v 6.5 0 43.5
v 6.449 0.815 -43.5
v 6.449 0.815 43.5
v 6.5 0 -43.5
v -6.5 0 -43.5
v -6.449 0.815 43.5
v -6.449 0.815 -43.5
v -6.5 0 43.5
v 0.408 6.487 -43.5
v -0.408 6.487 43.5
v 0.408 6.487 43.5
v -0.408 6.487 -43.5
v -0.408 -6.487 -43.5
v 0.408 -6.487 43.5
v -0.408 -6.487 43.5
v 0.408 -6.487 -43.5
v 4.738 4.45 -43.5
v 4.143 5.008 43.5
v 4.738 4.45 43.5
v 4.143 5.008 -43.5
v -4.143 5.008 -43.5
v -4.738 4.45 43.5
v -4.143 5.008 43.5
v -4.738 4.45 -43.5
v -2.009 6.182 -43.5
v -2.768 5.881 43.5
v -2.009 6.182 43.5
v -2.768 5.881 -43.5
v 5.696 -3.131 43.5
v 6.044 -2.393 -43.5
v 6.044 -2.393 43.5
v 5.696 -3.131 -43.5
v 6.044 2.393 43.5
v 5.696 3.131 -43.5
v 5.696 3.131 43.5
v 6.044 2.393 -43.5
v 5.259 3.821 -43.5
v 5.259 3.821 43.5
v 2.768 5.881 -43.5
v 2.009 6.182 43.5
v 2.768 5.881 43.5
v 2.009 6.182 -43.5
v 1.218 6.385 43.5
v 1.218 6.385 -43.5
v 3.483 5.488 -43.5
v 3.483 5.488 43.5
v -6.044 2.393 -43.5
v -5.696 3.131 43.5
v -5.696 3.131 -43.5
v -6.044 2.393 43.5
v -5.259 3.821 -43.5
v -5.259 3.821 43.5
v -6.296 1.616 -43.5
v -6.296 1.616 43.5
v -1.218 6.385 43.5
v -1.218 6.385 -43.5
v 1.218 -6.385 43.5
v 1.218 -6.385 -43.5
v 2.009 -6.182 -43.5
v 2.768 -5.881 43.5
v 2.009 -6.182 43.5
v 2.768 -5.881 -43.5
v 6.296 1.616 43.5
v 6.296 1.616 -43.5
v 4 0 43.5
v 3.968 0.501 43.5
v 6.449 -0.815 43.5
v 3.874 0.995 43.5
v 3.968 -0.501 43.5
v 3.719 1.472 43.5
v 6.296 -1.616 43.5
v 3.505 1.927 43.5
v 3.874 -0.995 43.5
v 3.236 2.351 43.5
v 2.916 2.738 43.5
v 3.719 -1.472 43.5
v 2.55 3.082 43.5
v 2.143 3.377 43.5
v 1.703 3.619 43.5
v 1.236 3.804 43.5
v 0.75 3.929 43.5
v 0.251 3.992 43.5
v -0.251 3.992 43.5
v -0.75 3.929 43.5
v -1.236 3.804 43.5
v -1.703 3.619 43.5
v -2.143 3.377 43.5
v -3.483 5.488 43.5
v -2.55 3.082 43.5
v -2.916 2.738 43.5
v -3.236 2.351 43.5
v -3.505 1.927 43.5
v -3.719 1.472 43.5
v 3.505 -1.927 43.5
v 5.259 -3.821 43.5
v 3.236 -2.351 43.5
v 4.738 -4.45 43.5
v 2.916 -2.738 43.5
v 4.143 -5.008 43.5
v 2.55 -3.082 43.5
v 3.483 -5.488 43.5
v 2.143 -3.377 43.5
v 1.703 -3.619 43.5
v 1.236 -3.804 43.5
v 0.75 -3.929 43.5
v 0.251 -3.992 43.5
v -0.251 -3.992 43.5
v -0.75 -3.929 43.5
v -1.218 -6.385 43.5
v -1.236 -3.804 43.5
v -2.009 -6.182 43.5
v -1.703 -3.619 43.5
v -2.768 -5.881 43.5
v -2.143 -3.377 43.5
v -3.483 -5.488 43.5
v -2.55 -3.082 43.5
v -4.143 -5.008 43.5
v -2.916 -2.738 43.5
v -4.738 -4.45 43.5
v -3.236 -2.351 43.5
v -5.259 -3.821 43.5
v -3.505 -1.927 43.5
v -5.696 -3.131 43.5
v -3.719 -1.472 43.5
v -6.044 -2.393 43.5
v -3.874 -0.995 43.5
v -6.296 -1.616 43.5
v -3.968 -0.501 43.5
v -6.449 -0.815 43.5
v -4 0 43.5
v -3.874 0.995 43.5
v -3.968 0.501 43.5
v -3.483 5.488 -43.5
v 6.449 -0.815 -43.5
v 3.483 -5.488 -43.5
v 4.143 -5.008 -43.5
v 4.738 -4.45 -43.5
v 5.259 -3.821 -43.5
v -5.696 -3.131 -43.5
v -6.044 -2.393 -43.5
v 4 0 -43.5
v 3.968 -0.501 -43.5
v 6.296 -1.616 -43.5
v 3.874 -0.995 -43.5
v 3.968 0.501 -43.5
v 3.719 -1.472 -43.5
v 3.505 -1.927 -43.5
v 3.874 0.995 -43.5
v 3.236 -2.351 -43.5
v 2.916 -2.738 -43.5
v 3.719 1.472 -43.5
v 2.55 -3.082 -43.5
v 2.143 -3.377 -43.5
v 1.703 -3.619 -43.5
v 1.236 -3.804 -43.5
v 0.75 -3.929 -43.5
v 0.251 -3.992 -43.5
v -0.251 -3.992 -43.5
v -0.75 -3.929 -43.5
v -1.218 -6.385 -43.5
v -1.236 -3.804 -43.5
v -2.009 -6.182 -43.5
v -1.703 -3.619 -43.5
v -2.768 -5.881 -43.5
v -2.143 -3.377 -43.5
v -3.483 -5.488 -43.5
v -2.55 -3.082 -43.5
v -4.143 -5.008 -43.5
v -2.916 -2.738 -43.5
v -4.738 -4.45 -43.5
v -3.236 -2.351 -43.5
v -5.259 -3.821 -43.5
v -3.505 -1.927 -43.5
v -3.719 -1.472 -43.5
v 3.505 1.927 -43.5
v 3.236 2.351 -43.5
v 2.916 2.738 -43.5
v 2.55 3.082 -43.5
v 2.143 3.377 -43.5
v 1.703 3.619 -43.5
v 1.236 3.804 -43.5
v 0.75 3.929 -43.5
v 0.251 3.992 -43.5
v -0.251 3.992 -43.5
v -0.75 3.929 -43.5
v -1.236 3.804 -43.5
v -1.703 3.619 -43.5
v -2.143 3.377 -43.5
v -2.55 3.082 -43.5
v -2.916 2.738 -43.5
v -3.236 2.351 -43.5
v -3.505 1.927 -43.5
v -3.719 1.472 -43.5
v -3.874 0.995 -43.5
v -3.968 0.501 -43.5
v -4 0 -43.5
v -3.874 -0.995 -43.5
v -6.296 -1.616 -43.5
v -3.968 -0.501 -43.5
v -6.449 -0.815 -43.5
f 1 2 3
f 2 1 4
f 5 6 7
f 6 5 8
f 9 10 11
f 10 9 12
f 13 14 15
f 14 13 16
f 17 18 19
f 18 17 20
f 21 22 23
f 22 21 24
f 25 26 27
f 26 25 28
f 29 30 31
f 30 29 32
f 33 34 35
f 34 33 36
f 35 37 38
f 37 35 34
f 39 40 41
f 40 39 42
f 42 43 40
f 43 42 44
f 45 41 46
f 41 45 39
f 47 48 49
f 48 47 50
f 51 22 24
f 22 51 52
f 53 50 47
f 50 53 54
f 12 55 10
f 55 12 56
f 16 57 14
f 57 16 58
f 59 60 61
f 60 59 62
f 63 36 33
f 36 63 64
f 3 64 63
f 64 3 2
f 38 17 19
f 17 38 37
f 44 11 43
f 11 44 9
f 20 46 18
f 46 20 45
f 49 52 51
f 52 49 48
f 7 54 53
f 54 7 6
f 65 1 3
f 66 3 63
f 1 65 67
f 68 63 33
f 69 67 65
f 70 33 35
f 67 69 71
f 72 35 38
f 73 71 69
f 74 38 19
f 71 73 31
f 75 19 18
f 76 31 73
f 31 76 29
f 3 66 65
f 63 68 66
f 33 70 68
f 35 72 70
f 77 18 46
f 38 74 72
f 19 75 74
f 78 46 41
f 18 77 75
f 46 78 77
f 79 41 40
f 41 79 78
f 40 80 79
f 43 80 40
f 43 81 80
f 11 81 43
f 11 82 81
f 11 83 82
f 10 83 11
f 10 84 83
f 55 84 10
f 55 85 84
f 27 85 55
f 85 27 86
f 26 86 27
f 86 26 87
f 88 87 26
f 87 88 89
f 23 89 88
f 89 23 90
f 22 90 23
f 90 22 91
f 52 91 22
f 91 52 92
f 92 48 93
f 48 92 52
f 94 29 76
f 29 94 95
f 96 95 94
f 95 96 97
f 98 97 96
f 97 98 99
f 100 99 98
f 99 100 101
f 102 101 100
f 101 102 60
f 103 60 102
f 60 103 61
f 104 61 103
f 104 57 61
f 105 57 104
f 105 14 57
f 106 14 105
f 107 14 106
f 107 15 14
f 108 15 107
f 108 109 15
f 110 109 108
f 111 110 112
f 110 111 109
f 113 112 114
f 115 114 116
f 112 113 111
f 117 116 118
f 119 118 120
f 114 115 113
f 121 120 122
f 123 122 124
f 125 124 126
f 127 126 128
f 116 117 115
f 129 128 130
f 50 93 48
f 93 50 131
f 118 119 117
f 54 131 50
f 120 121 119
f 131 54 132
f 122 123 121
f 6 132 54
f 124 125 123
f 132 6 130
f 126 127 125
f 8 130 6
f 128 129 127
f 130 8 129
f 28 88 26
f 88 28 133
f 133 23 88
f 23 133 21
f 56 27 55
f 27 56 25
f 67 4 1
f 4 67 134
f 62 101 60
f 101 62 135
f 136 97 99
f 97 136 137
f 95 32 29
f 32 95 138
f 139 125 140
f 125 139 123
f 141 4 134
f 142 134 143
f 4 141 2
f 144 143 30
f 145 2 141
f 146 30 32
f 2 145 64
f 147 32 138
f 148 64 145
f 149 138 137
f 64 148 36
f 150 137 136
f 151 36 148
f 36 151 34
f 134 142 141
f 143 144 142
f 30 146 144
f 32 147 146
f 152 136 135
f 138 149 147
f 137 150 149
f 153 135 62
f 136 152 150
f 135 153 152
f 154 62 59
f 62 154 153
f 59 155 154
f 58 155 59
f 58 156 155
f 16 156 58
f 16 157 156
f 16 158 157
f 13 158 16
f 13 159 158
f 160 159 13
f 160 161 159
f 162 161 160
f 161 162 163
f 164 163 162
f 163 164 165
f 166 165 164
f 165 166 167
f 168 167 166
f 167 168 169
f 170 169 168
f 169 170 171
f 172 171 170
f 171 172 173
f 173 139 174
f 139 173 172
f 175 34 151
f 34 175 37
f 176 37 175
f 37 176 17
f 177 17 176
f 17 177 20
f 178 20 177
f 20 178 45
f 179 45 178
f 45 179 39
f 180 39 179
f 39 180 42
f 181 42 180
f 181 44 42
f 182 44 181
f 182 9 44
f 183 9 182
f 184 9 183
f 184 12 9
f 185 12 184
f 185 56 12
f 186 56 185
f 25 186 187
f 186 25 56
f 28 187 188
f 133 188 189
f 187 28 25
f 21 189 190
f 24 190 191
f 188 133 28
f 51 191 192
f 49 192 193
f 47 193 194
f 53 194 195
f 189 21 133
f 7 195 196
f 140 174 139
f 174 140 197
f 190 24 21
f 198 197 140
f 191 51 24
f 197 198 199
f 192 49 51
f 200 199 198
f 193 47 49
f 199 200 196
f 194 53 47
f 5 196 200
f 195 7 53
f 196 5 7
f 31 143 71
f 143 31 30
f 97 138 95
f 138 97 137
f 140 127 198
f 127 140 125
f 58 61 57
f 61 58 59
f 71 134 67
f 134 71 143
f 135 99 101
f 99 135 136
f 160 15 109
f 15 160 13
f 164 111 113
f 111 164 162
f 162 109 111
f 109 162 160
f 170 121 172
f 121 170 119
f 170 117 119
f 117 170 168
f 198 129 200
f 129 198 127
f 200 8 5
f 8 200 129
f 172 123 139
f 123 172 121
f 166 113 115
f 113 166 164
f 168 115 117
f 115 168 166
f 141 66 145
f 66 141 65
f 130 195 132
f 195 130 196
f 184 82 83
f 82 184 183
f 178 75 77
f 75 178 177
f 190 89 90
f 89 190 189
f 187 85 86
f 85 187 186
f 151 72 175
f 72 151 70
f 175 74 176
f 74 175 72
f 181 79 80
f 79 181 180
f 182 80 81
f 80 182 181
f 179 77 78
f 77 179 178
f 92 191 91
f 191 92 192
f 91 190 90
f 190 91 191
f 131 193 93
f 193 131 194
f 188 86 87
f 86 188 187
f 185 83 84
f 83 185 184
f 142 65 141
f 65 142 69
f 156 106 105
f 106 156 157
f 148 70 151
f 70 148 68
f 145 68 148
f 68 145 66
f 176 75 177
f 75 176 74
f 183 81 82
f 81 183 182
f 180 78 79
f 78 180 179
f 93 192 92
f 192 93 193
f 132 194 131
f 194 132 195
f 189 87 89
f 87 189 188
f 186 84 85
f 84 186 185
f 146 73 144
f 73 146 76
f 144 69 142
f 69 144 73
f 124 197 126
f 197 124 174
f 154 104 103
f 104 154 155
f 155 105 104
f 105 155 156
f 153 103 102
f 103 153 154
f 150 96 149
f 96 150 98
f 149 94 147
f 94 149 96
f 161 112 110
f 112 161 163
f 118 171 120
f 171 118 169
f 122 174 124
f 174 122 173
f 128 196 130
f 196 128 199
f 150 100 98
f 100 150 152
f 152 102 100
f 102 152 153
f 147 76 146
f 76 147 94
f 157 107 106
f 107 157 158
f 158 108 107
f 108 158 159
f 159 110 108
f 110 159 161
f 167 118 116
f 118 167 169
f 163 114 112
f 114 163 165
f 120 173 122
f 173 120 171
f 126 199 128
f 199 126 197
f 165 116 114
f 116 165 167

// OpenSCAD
$fn = 50;


difference() {
	union() {
		translate(v = [0, 0, -43.5000000000]) {
			cylinder(h = 87, r = 6.5000000000);
		}
	}
	union() {
		translate(v = [0, 0, -100.0000000000]) {
			cylinder(h = 200, r = 4.0000000000);
		}
	}
}
